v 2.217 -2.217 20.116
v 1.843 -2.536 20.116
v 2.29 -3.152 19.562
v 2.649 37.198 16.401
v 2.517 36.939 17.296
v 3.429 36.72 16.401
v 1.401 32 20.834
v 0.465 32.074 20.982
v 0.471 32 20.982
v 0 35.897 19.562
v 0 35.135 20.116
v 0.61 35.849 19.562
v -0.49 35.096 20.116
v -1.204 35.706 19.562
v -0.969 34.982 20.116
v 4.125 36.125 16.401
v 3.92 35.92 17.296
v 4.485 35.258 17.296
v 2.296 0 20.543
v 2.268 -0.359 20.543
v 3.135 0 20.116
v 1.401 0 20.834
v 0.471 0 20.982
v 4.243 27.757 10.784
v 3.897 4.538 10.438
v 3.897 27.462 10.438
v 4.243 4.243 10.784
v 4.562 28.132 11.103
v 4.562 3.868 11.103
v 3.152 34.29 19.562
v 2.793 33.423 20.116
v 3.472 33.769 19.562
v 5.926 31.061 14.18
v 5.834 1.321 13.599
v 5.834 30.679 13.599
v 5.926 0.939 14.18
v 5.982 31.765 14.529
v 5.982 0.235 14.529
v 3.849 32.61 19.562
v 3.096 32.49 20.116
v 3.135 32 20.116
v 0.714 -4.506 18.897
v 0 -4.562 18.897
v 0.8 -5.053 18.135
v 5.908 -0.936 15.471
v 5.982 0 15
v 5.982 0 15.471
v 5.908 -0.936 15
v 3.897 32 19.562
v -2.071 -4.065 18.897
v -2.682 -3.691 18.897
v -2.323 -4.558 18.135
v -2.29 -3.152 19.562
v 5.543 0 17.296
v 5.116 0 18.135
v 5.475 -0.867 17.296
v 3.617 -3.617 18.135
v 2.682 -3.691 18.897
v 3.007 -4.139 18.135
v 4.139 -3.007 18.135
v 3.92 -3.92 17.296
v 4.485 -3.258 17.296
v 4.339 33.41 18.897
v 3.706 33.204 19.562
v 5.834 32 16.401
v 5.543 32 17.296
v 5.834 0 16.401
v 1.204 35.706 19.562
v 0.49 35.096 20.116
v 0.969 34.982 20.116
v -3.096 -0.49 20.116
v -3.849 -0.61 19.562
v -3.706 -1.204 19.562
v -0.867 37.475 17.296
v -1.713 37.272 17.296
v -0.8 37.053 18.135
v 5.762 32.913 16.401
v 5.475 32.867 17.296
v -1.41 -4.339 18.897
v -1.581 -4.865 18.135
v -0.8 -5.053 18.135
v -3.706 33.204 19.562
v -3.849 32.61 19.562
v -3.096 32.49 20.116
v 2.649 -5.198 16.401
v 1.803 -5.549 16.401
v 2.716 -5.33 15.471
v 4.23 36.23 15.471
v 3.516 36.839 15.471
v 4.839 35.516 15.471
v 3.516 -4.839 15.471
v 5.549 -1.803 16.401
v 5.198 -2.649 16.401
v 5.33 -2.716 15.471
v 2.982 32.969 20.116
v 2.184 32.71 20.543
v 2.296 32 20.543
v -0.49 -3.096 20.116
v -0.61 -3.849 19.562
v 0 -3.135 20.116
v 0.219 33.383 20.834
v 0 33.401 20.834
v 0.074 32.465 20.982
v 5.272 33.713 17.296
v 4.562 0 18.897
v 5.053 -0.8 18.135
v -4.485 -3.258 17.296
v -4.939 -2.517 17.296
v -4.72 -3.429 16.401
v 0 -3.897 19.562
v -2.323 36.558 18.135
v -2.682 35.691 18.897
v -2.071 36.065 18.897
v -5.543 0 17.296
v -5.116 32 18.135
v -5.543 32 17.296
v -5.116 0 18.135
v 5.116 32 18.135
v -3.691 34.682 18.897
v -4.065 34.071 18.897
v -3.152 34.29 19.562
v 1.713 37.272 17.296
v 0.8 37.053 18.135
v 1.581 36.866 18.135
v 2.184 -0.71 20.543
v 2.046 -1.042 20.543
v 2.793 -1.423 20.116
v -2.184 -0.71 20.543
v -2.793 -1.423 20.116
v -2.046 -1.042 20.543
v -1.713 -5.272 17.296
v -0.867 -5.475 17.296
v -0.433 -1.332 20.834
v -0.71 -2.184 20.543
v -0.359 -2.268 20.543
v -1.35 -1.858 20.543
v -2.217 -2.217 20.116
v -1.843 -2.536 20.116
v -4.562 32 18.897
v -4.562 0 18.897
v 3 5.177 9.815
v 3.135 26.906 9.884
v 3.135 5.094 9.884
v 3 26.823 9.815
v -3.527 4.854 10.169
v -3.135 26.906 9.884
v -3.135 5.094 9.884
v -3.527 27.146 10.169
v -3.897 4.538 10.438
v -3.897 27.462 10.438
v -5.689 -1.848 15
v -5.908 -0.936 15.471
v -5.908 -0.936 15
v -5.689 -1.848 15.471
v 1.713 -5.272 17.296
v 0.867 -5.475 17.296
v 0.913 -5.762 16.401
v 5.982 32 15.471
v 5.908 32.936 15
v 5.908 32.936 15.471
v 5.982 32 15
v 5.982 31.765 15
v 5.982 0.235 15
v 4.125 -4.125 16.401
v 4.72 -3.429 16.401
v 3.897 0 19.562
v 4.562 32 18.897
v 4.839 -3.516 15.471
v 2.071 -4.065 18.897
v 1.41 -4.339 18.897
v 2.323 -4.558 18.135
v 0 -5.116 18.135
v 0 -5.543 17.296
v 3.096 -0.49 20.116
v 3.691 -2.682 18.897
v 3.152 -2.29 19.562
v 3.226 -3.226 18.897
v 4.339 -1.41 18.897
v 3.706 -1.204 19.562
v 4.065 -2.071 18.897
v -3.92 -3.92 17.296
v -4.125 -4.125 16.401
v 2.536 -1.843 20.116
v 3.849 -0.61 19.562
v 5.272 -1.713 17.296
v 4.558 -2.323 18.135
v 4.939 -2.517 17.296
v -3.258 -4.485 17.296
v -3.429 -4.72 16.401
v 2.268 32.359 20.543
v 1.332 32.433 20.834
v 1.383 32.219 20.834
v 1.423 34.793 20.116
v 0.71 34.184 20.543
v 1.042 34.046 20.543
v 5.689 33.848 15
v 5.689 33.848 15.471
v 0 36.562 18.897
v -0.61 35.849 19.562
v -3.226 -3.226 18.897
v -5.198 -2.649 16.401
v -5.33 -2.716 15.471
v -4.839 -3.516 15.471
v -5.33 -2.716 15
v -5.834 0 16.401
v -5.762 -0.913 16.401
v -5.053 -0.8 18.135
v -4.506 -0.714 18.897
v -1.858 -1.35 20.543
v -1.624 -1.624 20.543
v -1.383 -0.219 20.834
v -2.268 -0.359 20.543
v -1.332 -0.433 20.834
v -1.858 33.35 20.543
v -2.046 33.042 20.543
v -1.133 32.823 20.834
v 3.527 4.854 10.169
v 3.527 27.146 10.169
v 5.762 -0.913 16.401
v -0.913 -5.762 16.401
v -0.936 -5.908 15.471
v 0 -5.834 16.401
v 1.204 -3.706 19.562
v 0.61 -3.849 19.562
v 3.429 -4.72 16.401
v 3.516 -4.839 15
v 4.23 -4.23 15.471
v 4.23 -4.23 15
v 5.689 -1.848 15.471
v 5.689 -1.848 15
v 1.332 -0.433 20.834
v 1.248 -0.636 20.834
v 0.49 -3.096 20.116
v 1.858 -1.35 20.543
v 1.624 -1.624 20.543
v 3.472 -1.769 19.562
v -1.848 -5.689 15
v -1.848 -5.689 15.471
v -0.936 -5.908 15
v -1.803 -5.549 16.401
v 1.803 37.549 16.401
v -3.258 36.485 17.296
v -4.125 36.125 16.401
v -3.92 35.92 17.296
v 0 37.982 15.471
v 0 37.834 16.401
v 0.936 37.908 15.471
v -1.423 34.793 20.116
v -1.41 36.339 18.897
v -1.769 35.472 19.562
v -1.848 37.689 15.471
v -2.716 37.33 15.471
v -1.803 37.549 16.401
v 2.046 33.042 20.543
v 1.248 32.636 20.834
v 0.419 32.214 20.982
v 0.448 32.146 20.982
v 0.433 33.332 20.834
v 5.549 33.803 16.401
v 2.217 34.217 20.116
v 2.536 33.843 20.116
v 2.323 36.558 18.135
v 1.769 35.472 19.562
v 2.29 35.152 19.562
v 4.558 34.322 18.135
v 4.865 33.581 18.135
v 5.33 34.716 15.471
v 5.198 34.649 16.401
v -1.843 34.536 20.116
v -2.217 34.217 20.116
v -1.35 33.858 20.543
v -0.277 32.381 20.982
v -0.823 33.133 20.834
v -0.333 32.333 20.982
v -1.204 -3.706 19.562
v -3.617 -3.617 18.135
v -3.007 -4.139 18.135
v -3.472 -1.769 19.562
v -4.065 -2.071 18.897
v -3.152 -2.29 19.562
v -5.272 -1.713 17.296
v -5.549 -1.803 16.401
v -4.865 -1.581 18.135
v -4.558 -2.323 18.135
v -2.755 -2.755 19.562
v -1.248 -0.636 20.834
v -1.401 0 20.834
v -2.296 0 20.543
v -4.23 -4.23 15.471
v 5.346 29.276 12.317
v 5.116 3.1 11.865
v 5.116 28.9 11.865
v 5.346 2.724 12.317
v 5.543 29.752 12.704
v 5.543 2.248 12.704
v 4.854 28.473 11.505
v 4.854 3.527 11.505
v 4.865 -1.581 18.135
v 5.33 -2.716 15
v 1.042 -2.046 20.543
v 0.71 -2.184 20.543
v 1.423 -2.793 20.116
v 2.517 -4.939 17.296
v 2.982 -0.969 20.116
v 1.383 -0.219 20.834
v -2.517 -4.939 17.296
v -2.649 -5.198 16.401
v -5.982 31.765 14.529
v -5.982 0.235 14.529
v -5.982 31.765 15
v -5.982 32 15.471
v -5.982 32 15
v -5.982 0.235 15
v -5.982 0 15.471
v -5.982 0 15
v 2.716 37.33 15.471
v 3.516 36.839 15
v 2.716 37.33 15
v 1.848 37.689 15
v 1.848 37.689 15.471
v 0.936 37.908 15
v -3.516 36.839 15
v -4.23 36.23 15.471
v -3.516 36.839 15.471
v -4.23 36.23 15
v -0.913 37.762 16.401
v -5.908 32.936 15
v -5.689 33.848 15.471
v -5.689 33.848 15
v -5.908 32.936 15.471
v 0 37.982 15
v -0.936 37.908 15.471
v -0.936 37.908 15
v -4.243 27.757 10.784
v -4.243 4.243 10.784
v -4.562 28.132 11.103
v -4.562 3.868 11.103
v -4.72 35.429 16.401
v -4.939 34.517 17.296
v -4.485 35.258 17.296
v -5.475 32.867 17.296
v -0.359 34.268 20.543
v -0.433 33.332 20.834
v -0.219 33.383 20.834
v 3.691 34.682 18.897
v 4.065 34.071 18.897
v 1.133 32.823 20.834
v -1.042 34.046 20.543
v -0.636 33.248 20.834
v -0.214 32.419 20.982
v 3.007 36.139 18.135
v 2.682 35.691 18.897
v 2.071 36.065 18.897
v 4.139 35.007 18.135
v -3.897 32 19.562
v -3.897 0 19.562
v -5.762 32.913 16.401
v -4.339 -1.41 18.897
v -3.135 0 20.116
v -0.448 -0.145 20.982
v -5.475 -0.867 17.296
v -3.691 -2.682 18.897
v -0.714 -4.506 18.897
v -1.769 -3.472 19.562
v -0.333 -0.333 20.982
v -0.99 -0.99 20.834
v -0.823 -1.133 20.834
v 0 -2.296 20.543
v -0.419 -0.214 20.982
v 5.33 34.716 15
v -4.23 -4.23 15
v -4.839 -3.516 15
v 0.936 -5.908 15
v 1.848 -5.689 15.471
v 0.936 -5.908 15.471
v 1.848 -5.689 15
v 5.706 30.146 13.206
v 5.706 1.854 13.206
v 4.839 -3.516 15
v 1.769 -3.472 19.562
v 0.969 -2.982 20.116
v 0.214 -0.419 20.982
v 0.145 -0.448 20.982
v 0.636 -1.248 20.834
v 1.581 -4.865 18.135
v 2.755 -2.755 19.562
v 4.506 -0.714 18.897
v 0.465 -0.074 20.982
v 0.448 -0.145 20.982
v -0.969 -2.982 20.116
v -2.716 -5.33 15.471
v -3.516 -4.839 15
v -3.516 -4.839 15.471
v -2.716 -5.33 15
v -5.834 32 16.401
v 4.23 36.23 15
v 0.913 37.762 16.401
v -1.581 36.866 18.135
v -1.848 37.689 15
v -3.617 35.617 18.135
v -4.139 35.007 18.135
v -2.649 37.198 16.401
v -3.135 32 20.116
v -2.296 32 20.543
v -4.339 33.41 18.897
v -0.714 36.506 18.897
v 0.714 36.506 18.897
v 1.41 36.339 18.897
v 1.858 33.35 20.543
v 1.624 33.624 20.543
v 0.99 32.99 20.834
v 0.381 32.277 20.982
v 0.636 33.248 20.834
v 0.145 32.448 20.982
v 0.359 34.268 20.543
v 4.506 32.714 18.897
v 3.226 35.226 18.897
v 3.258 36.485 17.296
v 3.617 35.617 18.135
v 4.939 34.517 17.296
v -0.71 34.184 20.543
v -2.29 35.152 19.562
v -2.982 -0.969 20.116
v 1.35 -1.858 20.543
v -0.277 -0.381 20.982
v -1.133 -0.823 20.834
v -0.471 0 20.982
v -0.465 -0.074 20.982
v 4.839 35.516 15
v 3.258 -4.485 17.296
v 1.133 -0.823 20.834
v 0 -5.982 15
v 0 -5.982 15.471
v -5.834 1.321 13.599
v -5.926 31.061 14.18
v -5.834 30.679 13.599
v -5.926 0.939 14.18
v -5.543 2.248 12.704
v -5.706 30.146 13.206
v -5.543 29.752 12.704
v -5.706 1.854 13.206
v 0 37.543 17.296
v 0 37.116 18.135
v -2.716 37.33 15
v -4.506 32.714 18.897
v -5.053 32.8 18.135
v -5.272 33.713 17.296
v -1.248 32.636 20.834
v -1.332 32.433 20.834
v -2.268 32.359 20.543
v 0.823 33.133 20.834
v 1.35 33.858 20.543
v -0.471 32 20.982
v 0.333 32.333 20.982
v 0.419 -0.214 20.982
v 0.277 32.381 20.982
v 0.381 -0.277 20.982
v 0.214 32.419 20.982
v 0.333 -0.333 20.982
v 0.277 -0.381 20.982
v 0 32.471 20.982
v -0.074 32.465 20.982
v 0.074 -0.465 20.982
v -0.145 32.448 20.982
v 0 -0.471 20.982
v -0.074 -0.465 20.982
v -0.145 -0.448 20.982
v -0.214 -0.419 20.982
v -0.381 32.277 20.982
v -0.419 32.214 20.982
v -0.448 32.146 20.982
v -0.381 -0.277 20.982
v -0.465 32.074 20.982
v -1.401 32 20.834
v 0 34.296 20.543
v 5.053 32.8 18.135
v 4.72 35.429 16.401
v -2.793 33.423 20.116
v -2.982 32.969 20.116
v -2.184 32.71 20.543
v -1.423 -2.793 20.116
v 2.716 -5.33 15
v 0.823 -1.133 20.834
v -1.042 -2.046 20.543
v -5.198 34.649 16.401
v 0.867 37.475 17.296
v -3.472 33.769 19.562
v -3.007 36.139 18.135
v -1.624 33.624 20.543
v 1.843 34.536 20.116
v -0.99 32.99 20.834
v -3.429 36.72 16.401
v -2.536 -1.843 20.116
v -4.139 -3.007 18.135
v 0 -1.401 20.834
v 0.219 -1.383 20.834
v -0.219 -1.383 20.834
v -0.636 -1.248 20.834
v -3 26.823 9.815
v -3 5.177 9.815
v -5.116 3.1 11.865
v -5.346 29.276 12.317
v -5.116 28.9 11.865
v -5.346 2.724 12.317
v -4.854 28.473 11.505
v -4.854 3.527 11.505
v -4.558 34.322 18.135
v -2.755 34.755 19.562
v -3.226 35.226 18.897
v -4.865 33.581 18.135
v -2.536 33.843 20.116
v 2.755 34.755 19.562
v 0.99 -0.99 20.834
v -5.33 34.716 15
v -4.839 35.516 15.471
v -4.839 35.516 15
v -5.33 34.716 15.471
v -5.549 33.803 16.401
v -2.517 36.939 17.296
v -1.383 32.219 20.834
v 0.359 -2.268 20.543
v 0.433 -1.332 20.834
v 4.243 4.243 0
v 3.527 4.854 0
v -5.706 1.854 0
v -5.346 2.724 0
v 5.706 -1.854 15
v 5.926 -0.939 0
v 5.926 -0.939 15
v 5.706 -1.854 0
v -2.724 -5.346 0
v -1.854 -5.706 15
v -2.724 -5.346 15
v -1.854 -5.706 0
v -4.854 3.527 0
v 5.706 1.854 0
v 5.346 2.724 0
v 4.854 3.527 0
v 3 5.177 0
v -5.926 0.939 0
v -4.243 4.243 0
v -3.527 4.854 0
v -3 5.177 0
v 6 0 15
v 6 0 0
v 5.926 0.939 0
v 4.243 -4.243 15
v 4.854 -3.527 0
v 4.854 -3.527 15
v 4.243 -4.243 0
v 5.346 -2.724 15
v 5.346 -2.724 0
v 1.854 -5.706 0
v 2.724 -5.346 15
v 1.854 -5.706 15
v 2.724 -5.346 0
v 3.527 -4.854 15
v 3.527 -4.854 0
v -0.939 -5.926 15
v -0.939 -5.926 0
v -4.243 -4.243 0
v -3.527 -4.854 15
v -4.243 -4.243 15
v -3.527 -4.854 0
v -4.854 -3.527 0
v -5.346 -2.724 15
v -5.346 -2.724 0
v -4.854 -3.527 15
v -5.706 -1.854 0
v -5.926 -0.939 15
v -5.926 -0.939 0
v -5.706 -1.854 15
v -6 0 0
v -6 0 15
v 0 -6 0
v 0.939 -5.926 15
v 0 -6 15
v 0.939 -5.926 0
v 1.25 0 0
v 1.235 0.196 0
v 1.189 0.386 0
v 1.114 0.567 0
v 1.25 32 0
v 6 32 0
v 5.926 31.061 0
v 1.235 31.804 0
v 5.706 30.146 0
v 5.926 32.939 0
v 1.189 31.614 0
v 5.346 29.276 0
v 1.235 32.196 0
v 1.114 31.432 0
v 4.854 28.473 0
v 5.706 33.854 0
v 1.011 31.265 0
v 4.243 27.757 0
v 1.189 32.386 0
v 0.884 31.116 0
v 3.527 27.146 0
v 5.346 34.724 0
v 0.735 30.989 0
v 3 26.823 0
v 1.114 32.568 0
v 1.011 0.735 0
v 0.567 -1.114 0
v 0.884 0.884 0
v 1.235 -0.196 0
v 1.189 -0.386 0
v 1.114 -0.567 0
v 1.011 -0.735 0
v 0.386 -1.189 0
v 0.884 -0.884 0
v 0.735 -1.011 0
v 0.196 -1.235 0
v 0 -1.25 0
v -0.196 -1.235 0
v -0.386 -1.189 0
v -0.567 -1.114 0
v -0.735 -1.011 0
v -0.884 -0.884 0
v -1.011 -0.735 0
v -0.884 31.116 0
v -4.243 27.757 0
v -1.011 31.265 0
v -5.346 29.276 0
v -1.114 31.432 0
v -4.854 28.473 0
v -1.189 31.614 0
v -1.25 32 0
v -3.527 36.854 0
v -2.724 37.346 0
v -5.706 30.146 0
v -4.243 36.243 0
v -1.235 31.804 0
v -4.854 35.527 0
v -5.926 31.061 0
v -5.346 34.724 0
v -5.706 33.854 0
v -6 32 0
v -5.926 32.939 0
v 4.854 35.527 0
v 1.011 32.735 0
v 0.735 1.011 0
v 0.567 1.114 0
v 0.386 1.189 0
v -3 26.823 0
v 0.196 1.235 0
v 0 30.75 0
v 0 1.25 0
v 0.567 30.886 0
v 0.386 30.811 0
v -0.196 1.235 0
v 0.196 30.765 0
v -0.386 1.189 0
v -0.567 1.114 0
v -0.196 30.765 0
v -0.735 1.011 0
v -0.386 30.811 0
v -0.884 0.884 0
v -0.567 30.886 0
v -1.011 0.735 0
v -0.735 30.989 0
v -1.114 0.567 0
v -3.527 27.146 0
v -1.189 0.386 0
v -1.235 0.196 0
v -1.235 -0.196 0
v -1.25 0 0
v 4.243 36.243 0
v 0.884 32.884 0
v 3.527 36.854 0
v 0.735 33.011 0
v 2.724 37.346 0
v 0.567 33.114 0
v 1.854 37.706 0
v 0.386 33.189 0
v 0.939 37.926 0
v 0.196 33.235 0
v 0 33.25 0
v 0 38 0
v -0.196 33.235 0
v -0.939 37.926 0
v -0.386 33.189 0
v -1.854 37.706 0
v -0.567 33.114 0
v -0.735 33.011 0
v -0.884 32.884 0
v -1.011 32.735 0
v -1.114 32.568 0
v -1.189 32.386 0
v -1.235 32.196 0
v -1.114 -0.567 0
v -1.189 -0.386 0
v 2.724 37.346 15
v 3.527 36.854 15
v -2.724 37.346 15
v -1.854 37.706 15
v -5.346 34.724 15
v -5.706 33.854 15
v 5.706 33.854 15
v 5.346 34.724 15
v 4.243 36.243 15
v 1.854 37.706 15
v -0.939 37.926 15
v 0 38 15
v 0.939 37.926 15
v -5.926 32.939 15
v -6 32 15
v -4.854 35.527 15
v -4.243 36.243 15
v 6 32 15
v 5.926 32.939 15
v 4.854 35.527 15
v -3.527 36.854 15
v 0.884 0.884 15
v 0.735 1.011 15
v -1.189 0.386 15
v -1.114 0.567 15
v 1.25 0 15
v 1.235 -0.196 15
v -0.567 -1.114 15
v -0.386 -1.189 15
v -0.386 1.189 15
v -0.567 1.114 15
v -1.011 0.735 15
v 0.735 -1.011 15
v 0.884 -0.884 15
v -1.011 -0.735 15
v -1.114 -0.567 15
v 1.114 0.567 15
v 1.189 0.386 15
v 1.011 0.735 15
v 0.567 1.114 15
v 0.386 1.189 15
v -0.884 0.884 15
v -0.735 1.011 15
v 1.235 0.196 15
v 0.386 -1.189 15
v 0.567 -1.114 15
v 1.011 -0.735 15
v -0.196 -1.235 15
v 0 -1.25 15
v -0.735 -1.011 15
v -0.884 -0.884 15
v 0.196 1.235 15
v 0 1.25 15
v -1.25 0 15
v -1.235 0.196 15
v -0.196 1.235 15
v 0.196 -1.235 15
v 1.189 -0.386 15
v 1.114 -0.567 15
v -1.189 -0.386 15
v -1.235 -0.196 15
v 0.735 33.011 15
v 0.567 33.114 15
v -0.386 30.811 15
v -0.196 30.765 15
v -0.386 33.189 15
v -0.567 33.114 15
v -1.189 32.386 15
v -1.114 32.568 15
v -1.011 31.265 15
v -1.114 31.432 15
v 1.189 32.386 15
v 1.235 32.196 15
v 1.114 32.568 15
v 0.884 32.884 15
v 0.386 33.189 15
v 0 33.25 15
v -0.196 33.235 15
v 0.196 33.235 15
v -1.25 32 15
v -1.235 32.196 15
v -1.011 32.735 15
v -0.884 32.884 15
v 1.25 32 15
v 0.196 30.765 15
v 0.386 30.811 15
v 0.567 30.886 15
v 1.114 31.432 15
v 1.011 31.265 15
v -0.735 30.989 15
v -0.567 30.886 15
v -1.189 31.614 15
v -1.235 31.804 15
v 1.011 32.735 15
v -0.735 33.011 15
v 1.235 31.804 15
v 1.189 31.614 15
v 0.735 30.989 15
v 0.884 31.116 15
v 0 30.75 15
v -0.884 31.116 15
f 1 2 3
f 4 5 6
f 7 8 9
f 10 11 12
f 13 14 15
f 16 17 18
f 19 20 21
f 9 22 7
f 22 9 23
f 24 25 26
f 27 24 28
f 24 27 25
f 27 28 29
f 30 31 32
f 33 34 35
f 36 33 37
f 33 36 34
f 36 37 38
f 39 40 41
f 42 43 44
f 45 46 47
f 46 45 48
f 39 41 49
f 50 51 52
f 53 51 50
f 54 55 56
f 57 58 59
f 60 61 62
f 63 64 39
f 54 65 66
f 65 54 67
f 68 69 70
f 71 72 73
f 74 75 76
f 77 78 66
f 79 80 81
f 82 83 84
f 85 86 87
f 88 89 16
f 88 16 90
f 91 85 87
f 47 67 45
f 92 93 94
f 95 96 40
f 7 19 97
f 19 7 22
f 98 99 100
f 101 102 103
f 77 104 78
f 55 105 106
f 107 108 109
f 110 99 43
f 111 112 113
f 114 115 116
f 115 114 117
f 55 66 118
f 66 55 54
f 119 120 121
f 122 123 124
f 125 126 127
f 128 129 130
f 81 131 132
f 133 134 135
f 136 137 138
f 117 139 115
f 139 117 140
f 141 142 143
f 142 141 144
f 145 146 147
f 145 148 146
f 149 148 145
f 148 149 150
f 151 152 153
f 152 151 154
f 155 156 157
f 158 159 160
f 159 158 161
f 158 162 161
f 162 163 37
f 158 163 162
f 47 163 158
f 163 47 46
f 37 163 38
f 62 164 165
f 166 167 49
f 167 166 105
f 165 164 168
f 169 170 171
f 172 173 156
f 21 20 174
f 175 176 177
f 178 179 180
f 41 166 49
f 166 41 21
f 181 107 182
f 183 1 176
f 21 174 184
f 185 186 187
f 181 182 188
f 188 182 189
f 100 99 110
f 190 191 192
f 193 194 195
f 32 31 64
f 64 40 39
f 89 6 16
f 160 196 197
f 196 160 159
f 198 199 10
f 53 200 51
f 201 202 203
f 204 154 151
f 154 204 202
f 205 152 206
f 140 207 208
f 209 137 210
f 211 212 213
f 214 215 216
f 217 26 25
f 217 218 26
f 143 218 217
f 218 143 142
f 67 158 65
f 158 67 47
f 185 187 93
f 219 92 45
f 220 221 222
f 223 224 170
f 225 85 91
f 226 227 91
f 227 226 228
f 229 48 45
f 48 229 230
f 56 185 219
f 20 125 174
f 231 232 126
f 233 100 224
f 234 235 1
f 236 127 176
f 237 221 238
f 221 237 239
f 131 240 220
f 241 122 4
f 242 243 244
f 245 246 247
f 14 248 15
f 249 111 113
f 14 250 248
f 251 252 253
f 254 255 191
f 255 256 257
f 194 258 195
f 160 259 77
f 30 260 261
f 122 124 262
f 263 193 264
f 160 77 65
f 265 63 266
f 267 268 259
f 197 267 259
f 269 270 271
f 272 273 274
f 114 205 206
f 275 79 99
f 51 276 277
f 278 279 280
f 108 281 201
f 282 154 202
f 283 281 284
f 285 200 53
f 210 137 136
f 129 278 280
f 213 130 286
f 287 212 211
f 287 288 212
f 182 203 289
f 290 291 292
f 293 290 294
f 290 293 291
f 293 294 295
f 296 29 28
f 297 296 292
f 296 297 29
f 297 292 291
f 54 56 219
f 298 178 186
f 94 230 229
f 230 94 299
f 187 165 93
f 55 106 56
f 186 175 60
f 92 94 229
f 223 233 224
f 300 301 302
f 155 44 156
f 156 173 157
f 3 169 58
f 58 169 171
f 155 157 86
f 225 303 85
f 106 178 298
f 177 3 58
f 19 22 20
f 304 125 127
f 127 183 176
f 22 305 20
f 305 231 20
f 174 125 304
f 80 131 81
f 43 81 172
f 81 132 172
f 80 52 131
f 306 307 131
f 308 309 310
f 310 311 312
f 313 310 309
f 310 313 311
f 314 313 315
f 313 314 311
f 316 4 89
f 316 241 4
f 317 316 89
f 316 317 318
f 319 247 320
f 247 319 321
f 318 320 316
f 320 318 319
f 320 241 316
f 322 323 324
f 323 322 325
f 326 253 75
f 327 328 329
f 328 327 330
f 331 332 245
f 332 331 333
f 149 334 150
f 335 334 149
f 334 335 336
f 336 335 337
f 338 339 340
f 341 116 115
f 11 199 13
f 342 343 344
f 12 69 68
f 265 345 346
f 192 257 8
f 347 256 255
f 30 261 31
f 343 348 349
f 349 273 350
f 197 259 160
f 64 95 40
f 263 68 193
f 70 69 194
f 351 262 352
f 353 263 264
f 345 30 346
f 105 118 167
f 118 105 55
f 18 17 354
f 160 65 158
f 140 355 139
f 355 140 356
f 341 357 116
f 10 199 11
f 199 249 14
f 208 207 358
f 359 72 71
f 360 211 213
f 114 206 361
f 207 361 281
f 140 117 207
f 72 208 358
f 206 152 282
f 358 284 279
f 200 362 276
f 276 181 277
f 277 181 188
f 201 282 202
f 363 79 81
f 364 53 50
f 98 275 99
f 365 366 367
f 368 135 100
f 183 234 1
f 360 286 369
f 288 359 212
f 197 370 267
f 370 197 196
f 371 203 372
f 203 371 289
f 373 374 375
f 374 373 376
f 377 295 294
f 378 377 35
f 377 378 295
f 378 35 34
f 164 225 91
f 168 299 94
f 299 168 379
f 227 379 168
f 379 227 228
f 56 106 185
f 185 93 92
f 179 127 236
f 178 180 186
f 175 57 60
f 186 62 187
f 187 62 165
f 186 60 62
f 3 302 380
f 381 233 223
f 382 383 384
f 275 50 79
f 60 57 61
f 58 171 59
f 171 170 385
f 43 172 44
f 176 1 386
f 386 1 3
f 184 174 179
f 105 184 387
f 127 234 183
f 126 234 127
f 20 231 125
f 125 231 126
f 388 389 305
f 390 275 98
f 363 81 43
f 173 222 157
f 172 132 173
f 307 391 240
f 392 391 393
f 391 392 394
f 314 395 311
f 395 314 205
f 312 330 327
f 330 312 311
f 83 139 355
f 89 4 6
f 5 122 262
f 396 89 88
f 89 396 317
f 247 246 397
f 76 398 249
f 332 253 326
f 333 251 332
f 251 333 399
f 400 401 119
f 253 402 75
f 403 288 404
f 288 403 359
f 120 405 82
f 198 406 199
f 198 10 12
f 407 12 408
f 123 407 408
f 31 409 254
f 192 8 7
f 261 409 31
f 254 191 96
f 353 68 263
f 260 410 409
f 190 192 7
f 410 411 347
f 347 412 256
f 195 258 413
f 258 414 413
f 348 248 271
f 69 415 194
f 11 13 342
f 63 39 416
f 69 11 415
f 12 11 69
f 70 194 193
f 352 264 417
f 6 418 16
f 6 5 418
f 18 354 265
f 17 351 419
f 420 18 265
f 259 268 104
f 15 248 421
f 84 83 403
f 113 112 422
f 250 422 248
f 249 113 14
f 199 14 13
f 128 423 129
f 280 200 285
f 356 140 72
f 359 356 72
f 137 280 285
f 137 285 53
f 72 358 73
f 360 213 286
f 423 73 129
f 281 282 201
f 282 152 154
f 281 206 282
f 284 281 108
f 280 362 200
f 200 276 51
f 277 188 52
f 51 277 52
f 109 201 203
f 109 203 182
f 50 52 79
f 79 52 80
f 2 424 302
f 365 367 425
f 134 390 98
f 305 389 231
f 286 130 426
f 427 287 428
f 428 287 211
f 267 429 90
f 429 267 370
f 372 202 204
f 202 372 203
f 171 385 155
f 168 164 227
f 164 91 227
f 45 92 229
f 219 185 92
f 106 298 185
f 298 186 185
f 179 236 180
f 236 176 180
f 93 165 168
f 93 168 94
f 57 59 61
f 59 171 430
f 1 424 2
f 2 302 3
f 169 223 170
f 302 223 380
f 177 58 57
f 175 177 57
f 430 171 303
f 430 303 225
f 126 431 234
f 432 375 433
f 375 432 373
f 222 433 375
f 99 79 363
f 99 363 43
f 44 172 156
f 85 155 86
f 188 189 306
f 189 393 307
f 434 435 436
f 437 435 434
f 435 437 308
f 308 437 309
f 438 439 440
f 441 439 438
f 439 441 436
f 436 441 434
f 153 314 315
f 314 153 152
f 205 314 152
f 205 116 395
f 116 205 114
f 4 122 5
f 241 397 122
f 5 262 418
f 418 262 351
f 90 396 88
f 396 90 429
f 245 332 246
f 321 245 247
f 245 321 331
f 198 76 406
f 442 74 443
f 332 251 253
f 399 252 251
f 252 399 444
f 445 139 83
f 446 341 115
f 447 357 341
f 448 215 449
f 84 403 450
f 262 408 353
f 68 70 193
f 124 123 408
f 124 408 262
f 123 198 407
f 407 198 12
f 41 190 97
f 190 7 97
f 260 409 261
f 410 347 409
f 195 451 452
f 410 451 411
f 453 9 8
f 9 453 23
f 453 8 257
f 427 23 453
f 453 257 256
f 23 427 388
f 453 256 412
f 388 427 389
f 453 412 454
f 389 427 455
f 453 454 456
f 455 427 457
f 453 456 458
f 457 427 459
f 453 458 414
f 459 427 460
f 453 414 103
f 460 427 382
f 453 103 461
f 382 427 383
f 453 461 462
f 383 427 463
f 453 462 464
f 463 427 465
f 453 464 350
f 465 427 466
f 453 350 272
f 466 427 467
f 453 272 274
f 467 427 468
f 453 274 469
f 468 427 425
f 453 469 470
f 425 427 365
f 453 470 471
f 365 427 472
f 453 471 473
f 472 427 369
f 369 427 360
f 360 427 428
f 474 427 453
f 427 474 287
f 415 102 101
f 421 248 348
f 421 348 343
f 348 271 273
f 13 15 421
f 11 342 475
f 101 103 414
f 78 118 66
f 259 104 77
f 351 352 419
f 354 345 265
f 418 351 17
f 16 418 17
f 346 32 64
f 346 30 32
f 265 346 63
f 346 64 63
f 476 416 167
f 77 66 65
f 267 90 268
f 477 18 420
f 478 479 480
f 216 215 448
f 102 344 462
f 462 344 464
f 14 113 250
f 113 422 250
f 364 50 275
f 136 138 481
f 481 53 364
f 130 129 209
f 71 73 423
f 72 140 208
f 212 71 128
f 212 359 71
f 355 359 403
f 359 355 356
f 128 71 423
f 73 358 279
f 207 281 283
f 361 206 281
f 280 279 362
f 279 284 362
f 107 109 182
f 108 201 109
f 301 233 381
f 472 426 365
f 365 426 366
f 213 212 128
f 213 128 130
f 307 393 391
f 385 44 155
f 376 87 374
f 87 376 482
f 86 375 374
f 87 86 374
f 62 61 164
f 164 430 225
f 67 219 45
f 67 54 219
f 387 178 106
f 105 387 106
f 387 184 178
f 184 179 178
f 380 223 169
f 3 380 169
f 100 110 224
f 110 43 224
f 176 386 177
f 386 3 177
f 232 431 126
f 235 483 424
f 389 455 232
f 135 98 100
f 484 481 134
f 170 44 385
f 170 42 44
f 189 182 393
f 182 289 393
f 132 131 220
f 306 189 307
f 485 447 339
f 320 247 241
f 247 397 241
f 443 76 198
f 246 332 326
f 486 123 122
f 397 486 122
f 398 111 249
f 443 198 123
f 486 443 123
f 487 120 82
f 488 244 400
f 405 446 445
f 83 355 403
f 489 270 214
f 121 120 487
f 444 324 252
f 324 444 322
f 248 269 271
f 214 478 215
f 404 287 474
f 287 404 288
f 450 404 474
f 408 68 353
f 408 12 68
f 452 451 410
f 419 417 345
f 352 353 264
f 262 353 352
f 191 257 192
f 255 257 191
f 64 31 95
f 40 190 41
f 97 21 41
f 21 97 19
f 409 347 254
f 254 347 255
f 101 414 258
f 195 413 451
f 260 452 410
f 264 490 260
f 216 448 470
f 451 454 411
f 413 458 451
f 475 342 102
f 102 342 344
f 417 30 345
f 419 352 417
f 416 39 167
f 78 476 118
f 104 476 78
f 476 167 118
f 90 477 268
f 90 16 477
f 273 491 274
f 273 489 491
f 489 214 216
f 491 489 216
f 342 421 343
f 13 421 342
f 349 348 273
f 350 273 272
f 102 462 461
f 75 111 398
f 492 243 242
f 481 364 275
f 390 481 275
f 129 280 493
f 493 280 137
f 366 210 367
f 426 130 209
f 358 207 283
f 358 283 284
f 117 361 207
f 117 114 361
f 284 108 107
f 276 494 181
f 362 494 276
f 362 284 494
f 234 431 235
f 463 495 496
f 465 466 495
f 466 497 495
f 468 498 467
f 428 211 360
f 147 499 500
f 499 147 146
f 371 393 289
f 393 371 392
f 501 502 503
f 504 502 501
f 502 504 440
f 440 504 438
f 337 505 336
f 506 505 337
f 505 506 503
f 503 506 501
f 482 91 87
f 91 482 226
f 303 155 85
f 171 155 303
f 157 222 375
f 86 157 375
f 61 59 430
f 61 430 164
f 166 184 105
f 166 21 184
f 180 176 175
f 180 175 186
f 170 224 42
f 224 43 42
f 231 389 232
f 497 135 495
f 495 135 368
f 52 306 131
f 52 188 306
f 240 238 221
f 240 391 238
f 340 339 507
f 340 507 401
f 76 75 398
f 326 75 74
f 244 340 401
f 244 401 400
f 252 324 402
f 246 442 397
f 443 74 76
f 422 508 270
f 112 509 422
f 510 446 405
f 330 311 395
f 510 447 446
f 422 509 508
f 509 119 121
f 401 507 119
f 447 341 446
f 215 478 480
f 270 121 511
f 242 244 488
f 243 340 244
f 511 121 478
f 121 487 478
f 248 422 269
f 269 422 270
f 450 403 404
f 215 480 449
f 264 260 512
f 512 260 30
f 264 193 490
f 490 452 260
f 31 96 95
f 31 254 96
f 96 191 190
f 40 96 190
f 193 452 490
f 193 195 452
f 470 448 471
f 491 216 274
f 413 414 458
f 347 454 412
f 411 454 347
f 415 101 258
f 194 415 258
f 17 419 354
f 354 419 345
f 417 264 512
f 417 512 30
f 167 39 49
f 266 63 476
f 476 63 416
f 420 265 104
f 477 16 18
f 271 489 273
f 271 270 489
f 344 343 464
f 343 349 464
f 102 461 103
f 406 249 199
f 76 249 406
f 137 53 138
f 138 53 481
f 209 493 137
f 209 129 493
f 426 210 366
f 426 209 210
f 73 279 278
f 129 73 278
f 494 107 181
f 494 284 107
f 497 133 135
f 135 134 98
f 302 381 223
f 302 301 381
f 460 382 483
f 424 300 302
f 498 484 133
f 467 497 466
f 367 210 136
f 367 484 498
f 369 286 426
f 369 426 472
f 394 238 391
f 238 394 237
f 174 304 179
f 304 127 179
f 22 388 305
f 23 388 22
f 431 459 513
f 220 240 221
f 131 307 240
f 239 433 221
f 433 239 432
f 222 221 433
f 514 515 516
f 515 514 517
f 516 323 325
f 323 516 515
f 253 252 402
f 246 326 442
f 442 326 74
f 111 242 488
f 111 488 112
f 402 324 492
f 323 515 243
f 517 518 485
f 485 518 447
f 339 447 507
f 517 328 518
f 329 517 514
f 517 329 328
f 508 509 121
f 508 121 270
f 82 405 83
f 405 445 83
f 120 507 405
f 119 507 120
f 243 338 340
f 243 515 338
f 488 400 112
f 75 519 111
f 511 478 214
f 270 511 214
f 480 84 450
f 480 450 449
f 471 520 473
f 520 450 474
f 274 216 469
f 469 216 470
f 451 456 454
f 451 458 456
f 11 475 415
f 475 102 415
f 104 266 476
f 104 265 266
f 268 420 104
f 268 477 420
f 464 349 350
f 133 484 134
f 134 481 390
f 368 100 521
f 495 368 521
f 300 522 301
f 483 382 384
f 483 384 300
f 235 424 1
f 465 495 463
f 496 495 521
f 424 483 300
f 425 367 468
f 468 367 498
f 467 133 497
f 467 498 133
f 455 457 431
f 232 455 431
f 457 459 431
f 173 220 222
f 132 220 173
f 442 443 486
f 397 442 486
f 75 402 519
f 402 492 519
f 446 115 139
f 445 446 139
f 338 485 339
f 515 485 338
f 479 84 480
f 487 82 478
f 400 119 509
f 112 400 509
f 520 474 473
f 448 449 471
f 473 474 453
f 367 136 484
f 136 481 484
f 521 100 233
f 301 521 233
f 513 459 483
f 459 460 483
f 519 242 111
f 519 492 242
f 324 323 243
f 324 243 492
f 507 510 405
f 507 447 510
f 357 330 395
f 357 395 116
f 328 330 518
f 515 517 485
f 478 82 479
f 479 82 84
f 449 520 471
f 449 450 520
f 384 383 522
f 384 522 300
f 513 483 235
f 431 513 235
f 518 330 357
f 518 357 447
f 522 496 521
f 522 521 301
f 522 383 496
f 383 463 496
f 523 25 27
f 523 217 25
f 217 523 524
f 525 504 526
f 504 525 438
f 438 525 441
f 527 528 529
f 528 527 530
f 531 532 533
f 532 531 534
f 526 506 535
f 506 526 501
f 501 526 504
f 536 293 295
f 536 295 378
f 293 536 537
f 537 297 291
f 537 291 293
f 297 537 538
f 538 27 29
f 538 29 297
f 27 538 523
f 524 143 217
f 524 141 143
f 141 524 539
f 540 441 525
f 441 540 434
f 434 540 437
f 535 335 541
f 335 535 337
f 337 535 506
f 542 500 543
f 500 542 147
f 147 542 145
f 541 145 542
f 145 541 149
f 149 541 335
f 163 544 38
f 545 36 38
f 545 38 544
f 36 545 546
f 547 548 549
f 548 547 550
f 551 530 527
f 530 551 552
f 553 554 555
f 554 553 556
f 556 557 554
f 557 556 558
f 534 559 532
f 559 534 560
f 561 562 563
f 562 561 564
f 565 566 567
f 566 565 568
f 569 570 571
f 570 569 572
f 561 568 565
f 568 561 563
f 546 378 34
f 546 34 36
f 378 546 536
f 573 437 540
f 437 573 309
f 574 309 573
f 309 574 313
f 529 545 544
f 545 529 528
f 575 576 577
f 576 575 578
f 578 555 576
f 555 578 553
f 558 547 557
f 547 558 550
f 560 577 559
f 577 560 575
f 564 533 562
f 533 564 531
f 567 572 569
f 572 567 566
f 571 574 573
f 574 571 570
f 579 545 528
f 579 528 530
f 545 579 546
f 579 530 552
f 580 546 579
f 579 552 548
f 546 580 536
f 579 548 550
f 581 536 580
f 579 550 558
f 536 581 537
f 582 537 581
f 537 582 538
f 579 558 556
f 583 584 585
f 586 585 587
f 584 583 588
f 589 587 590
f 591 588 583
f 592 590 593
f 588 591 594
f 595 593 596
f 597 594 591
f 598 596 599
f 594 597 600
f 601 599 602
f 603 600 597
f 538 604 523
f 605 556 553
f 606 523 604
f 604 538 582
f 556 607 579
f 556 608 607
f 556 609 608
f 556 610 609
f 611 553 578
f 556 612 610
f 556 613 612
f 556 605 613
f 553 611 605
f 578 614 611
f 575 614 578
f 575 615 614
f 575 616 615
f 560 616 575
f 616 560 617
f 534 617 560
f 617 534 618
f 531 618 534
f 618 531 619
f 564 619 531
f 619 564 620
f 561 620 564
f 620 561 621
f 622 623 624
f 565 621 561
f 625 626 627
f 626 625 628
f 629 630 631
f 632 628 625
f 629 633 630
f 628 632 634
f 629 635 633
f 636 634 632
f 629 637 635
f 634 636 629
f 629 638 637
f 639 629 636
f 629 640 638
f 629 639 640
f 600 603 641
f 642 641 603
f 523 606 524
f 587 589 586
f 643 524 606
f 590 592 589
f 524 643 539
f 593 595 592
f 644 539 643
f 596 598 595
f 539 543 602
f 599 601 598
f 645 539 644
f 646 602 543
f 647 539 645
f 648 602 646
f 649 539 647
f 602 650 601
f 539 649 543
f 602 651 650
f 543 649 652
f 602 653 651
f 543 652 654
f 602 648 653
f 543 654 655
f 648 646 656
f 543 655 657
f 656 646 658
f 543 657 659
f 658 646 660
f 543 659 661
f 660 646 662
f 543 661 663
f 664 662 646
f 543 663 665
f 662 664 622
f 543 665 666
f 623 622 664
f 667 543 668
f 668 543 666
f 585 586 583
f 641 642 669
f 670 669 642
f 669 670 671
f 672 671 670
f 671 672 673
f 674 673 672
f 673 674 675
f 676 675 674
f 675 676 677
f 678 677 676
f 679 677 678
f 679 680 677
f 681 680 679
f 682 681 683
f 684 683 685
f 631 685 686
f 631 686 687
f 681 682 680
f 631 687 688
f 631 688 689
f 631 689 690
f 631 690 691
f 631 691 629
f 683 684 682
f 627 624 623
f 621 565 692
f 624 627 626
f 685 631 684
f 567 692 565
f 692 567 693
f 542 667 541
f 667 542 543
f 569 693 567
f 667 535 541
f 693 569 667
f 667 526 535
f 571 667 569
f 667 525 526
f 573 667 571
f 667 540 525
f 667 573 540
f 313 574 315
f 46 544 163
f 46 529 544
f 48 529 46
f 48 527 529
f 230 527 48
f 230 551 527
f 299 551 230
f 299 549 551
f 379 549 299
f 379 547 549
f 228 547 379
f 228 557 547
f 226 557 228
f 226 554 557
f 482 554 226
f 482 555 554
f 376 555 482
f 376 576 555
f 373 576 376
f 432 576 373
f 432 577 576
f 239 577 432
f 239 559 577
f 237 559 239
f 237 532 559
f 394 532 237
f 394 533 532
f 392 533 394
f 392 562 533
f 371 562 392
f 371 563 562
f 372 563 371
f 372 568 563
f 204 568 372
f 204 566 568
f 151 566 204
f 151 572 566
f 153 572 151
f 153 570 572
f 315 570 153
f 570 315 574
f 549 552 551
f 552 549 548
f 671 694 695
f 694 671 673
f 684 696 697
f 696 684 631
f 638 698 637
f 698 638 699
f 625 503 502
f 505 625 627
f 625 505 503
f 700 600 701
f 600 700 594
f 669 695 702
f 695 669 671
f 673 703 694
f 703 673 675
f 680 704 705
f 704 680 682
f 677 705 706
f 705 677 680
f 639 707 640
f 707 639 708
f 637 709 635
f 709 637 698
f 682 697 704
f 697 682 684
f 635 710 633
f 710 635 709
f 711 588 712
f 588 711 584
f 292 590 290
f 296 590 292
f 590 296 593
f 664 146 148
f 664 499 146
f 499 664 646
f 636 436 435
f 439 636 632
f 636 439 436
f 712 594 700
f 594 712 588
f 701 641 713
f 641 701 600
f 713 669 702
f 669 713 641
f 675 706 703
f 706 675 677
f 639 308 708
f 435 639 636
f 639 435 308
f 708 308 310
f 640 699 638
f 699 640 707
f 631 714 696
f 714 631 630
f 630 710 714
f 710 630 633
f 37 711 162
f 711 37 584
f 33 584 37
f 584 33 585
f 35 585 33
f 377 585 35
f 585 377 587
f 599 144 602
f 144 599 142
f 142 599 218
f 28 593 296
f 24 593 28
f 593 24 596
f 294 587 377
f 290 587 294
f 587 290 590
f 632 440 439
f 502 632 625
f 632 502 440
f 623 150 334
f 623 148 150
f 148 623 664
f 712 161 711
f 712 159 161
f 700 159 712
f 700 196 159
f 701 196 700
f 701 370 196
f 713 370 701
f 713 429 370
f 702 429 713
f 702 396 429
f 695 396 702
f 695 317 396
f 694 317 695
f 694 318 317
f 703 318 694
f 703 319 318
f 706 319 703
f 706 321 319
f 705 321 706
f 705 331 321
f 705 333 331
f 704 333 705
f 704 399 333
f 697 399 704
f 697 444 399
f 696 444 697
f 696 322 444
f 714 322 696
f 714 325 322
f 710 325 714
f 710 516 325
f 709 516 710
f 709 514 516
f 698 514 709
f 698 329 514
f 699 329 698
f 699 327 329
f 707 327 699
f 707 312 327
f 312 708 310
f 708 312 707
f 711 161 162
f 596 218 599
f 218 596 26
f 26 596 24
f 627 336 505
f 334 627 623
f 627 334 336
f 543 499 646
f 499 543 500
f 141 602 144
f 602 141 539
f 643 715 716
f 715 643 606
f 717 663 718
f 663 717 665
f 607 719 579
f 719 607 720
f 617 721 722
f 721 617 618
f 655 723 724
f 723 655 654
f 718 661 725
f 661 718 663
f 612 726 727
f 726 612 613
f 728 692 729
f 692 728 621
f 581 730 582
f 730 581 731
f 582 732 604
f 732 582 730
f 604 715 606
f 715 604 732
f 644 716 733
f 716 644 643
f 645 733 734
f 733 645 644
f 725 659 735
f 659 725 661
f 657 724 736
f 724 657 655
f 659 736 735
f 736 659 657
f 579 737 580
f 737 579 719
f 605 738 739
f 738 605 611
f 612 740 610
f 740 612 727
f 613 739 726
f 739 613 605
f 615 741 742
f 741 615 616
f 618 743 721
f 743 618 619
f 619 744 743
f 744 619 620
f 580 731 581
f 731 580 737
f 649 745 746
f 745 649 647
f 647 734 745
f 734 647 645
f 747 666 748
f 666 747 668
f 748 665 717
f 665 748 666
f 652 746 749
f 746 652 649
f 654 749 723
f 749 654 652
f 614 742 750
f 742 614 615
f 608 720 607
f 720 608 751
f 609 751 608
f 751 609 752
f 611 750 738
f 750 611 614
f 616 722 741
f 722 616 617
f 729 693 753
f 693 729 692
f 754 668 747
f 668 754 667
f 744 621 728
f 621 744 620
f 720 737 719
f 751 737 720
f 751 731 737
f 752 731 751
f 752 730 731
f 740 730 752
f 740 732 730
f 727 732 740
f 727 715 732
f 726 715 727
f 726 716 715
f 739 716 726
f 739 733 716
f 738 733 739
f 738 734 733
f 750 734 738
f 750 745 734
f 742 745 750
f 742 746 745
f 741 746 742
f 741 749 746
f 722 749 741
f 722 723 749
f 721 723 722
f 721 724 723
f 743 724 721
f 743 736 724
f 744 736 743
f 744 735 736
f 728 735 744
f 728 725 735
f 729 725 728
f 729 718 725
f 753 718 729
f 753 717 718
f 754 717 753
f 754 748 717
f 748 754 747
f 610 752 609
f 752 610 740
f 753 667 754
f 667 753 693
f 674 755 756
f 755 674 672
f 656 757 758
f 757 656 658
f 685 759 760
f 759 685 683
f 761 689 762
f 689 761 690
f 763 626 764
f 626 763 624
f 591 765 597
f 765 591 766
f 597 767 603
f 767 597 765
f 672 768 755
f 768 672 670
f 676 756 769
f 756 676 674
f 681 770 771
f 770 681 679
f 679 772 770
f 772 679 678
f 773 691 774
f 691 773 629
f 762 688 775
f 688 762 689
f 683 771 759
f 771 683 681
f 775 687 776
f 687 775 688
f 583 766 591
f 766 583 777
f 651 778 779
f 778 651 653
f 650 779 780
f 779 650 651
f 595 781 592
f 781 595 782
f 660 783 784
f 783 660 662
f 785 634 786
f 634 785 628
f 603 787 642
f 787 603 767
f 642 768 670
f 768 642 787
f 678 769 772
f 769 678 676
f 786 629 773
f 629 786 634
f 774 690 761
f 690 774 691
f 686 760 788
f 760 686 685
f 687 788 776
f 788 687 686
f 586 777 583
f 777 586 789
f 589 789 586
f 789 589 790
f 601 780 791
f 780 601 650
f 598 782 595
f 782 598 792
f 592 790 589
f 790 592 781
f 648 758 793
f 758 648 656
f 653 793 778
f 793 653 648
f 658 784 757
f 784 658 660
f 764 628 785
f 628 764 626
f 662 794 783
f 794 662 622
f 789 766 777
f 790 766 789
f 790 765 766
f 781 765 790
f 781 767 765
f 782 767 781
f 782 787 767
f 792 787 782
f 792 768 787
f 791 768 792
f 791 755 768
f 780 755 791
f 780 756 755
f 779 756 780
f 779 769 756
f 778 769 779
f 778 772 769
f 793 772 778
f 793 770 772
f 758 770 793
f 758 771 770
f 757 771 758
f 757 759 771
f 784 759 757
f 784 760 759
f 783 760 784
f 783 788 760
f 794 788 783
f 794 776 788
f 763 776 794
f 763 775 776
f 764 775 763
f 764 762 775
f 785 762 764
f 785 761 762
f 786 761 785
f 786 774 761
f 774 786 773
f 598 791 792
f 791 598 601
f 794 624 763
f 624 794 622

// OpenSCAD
length = 32;
h = 15;
dia = 12;
screw_d = 2.5;

module handle() {
    difference() {
        union() {
            translate([0,0,h]) hull() {
                sphere(d=dia, $fn=40);
                translate([0,length,0]) sphere(d=dia, $fn=40);
            }
            cylinder(d=dia,h=h,$fn=40);
            translate([0,length,0]) cylinder(d=dia,h=h,$fn=40);
            translate([-dia/2/2,0,0]) cube([dia/2,length,h]);
        }
        cylinder(d=screw_d,h=h,$fn=40);
        translate([0,length,0]) cylinder(d=screw_d,h=h,$fn=40);
    }
}

handle();
